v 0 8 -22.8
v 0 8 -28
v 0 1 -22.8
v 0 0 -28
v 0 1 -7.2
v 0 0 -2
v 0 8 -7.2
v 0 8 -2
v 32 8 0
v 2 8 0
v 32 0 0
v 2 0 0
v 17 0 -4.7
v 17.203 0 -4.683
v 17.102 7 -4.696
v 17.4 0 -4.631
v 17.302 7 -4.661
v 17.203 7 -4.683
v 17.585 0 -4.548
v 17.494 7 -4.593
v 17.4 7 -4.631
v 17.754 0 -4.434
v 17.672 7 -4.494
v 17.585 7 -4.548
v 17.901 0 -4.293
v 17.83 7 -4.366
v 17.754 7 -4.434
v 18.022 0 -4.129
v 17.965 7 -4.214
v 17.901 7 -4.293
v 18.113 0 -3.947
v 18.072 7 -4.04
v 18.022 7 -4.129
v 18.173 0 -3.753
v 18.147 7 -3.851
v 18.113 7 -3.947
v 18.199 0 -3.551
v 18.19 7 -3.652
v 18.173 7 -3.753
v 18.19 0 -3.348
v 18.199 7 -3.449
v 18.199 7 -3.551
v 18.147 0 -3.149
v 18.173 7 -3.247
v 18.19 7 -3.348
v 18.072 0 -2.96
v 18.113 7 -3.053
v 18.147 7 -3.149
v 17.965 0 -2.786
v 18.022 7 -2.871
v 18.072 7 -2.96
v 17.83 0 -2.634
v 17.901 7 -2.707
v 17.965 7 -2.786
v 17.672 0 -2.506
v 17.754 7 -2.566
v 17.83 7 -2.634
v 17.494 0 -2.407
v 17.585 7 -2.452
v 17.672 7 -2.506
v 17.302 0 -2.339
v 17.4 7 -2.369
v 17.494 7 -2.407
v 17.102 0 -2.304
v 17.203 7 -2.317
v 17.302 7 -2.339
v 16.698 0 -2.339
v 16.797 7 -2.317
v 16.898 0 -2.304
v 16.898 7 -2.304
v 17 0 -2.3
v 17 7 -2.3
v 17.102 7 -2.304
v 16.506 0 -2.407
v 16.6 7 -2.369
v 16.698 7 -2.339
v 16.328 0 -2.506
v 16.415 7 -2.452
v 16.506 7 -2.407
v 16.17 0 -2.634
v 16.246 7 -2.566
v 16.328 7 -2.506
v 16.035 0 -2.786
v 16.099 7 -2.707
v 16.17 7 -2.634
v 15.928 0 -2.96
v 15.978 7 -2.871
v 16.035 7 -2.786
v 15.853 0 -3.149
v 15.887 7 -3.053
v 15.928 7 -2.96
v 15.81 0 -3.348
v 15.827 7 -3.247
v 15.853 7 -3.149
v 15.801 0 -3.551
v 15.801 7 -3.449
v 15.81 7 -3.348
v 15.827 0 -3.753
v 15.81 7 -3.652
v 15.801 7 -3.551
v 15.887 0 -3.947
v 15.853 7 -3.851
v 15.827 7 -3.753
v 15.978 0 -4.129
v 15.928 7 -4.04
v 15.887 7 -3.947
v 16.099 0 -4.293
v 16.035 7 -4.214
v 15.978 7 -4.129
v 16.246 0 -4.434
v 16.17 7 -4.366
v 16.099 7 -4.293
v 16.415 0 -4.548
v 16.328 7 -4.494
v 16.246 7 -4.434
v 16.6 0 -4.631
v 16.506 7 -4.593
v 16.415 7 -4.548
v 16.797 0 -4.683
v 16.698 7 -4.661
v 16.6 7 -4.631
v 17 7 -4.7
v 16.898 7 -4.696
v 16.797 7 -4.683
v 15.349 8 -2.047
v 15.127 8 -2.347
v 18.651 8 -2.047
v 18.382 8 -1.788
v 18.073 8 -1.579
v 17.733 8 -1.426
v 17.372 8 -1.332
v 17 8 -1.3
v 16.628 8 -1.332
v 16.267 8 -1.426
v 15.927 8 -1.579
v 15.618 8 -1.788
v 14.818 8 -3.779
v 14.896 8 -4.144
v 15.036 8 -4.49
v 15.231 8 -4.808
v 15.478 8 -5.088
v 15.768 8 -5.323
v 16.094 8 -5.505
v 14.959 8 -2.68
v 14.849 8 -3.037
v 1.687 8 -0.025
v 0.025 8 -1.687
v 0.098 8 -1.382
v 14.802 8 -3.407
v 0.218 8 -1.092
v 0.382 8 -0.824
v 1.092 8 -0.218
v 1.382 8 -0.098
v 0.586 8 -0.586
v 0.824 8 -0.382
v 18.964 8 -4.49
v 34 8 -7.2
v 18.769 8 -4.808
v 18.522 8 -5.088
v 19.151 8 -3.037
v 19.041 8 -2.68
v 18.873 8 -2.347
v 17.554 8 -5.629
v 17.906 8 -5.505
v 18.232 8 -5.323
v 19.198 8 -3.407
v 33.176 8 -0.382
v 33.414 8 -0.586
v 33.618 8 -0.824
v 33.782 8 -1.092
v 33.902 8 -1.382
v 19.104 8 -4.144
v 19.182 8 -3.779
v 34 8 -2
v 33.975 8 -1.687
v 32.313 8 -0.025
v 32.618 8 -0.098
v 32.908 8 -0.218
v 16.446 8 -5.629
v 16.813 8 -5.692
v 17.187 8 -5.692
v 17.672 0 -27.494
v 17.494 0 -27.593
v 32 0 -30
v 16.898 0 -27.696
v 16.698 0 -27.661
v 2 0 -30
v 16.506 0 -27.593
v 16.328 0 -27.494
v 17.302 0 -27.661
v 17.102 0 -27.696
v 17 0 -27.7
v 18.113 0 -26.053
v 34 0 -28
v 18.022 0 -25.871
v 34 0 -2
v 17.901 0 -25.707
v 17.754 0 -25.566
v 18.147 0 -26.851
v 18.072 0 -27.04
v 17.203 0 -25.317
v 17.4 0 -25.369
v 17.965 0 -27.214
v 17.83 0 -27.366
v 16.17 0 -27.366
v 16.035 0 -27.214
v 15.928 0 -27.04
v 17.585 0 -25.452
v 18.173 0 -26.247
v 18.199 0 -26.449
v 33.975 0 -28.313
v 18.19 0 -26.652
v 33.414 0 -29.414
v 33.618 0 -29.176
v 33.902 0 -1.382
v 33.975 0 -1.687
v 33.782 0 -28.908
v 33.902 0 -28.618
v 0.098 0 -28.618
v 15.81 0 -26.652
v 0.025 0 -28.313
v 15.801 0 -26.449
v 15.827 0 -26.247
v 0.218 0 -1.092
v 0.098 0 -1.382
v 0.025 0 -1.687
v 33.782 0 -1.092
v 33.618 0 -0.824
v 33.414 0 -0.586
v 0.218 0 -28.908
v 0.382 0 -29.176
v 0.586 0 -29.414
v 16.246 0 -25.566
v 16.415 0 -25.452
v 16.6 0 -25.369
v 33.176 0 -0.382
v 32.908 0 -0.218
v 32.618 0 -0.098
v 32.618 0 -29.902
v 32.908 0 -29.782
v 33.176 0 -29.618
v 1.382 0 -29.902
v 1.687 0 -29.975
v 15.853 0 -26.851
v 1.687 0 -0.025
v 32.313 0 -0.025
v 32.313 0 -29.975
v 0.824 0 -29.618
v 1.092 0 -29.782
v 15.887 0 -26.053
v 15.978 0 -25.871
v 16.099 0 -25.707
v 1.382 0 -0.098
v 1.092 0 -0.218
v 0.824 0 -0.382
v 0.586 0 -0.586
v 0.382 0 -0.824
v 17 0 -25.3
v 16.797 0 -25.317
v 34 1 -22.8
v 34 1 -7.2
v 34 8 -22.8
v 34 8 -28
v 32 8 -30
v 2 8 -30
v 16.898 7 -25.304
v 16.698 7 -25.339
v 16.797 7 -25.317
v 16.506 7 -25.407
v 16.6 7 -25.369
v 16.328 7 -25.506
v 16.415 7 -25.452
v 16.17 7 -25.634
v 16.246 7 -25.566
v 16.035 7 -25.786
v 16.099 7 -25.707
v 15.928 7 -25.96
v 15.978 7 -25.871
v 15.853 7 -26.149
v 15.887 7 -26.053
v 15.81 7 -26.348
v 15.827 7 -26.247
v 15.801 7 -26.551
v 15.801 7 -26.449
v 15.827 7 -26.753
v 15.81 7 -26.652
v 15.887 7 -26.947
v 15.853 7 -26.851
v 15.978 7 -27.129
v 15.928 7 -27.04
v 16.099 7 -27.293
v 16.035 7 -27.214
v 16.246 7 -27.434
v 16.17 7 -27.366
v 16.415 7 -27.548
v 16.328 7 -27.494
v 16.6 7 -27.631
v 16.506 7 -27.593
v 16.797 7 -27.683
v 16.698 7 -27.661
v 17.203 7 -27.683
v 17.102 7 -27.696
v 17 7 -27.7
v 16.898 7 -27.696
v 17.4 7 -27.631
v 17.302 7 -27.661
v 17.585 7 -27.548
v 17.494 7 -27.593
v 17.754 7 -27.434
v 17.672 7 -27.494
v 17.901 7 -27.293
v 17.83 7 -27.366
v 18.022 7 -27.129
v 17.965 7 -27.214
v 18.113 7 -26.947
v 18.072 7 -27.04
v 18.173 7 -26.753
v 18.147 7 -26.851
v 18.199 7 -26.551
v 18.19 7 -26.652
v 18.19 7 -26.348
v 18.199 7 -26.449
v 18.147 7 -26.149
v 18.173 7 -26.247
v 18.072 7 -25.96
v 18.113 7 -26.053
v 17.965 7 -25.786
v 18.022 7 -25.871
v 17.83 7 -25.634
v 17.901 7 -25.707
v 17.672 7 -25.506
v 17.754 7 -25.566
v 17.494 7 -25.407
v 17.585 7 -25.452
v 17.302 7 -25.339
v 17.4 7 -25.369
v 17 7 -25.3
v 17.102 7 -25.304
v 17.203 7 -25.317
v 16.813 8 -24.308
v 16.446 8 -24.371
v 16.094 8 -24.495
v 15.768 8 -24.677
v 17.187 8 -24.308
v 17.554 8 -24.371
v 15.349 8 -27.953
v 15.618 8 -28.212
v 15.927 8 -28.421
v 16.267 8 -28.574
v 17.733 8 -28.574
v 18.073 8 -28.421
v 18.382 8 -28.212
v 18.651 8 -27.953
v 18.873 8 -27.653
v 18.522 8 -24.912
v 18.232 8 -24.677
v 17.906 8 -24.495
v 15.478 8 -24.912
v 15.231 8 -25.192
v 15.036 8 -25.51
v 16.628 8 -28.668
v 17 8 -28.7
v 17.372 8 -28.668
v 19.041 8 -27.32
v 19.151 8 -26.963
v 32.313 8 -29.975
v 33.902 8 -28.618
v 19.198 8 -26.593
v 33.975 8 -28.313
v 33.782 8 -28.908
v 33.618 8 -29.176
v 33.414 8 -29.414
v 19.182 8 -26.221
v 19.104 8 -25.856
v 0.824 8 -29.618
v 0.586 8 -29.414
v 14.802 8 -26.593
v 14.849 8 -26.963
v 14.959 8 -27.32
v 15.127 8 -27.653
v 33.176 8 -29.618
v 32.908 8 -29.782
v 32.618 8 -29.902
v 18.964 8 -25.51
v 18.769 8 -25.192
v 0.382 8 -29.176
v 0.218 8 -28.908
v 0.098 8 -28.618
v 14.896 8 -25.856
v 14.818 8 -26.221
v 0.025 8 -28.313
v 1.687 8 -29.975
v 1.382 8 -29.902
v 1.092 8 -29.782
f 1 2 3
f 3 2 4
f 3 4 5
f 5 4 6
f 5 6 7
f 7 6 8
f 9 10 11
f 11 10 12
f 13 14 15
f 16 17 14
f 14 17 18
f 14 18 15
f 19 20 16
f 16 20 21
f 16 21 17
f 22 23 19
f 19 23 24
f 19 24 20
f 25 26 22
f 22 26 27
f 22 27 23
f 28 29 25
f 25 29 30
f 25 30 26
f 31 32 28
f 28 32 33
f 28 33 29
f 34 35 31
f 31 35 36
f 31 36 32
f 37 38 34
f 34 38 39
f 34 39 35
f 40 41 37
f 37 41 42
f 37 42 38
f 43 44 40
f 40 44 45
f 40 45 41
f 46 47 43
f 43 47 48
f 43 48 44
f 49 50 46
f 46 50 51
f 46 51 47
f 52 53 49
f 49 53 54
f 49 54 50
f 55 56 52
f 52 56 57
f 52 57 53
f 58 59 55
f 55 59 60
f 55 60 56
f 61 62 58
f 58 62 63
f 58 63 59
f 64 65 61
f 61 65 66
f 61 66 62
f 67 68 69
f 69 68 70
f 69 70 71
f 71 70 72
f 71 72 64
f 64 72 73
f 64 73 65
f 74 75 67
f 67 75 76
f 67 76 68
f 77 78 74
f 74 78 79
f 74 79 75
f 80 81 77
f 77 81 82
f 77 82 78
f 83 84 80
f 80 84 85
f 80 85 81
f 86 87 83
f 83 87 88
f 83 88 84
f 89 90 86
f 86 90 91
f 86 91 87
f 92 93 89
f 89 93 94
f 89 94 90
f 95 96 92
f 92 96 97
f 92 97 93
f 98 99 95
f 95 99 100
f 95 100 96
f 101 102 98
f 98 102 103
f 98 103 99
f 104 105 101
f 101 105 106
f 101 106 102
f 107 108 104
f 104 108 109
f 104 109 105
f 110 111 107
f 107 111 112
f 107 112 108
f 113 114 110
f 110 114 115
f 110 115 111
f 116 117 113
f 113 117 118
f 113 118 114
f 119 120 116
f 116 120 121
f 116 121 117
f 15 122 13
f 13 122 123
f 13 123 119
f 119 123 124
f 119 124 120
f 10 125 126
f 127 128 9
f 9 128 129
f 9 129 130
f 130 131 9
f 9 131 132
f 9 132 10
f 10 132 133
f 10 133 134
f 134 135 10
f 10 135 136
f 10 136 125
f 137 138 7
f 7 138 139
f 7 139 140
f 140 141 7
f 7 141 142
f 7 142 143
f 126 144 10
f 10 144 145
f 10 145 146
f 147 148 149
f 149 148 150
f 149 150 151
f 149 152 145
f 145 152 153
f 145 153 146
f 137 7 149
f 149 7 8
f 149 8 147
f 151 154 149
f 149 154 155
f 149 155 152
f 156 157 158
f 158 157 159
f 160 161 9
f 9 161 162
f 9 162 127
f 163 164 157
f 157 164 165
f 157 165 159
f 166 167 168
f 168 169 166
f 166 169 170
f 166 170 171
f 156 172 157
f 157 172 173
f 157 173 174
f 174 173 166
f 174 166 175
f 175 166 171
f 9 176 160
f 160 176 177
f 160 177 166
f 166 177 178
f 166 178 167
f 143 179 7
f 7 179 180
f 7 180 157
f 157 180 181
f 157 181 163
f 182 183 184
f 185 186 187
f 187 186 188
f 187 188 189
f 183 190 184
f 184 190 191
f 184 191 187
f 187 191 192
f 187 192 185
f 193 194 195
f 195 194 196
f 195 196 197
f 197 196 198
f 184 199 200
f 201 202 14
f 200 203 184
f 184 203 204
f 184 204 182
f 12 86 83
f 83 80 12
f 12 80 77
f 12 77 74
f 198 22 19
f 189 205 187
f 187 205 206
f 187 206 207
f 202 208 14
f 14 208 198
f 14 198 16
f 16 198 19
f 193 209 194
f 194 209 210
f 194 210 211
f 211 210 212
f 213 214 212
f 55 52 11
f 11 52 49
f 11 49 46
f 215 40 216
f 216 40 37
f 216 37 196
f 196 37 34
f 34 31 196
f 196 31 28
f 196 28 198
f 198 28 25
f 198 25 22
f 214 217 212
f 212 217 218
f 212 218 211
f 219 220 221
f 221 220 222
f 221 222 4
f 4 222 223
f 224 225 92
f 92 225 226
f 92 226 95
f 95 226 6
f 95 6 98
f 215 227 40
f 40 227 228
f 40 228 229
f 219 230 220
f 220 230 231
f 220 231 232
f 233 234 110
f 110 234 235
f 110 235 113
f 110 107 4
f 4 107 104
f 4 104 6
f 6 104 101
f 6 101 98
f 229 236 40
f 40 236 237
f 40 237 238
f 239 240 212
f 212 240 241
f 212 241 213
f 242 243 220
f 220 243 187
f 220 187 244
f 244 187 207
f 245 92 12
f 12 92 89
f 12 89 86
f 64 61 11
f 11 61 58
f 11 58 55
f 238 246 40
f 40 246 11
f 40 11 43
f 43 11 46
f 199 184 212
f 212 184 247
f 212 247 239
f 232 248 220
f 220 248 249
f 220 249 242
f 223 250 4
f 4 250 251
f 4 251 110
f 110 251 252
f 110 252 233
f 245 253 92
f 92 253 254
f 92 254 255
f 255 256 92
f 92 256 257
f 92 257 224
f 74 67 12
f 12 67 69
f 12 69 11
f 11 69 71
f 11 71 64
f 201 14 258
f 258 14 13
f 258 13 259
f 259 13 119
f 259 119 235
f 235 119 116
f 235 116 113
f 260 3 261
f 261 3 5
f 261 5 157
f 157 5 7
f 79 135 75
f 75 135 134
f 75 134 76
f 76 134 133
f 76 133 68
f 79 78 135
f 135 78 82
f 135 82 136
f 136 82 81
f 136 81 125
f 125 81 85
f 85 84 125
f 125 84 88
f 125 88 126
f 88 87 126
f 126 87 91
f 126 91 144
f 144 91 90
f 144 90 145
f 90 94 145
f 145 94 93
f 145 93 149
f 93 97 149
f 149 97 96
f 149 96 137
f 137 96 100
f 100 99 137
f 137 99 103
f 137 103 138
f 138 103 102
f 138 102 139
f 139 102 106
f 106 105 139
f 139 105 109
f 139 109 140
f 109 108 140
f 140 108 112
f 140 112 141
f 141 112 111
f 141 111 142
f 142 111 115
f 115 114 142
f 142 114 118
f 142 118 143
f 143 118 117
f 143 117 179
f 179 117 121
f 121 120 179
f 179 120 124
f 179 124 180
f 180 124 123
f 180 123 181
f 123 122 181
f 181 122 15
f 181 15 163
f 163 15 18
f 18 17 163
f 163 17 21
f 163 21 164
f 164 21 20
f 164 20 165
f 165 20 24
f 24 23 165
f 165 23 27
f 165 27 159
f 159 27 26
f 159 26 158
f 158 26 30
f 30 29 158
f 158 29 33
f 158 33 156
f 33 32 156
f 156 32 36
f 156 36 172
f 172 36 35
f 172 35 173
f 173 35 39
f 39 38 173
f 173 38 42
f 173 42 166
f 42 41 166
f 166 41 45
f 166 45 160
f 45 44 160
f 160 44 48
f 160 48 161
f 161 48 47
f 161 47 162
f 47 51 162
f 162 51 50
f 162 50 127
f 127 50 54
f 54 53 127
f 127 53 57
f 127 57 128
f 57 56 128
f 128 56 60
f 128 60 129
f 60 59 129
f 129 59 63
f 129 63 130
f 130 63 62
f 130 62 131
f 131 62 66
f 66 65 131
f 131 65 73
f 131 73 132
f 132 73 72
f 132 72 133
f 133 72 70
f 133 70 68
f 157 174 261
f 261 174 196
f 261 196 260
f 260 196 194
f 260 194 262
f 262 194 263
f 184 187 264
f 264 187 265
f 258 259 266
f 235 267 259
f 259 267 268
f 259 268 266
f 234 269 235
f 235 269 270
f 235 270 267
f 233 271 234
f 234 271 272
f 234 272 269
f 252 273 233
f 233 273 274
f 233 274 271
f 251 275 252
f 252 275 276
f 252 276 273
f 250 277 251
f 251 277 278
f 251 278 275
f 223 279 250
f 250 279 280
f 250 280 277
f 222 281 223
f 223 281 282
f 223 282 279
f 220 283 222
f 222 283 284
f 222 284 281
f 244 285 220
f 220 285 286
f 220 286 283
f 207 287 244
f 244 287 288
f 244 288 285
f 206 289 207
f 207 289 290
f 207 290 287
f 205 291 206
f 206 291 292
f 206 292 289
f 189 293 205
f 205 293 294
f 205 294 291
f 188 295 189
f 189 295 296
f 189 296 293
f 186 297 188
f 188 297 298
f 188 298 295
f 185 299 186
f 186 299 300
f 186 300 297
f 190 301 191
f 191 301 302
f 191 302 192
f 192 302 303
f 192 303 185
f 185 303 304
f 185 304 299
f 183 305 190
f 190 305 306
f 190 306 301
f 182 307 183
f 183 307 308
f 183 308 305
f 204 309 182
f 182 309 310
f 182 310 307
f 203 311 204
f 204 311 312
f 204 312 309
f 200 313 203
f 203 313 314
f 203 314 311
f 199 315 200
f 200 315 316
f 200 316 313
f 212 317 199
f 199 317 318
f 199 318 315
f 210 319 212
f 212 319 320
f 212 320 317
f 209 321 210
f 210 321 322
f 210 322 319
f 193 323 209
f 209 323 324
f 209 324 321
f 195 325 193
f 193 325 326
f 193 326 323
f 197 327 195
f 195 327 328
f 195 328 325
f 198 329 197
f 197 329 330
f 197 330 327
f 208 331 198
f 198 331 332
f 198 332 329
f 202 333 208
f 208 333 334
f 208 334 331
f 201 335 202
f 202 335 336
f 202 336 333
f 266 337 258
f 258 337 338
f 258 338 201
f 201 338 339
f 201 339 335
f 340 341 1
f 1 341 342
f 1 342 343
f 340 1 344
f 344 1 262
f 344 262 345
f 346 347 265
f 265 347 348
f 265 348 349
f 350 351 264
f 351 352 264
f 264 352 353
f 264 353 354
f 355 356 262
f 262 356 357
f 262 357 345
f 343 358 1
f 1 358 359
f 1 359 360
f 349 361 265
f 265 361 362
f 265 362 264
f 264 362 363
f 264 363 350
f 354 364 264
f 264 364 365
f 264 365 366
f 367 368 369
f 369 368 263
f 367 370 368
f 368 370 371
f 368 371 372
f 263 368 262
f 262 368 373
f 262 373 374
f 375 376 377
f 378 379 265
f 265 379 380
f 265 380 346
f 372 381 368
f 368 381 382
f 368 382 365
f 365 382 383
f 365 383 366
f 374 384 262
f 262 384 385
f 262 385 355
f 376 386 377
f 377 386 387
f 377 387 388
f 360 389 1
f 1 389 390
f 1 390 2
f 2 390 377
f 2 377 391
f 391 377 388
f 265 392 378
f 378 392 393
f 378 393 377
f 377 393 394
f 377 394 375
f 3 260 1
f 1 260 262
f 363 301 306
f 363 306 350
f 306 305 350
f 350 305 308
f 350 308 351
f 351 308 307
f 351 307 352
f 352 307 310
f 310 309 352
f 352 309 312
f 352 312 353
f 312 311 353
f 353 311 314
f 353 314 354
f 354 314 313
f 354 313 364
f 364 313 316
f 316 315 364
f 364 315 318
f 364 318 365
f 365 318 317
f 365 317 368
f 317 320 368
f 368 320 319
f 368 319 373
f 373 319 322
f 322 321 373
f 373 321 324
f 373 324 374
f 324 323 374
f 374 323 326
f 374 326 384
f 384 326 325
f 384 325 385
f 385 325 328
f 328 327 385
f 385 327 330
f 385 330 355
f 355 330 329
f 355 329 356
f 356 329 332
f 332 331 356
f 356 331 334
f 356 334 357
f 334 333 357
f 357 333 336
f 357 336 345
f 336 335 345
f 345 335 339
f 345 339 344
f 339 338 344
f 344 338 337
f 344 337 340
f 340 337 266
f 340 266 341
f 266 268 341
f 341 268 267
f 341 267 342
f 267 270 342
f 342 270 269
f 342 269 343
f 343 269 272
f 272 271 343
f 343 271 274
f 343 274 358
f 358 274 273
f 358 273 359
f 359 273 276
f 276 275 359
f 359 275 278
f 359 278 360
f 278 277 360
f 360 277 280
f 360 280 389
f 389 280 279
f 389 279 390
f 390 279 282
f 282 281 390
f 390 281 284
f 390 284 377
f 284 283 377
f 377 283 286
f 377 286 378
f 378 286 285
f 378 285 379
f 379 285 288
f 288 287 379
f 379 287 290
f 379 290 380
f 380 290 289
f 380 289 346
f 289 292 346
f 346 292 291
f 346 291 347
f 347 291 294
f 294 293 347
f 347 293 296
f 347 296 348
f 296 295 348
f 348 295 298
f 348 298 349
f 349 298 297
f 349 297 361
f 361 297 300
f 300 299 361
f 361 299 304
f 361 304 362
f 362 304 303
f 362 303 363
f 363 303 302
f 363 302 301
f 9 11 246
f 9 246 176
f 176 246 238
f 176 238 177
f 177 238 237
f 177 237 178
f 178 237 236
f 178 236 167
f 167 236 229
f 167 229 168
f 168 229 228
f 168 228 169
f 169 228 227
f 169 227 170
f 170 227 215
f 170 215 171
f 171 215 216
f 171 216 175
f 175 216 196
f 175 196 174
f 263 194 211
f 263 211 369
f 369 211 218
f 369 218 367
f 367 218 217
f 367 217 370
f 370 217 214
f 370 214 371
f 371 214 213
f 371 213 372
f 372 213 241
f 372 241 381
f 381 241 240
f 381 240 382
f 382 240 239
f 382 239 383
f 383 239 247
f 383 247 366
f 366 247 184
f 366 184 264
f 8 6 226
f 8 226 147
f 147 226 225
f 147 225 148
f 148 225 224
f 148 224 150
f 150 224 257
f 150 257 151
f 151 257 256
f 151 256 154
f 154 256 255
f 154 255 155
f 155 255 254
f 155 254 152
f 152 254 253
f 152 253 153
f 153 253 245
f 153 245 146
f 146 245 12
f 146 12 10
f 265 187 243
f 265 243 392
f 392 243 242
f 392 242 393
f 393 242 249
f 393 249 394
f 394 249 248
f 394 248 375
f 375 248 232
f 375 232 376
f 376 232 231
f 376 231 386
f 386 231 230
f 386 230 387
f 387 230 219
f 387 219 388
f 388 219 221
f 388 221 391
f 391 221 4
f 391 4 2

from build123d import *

# Parameters (mm, degrees)
BOSS_EXTRUDE1_DEPTH = 8
SKETCH2_W           = 7.8
SKETCH2_H           = 7
CUT_EXTRUDE1_DEPTH  = 25.04163056
CHAMFER1_SIZE       = 1
FILLET1_R           = 2


with BuildPart() as part:
    # Sketch1 → Boss-Extrude1 (new body)
    with BuildSketch(Plane(origin=(0, 0, 0), x_dir=(1, 0, 0), z_dir=(0, 1, 0))):
        with BuildLine():
            Line((17, 4.7), (17, 15))
            Line((17, 15), (0, 15))
            Line((0, 15), (0, 0))
            Line((0, 0), (17, 0))
            Line((17, 0), (17, 2.3))
            ThreePointArc((17, 2.3), (15.8, 3.5), (17, 4.7))
        make_face()
    extrude(amount=BOSS_EXTRUDE1_DEPTH)

    # Sketch2 → Cut-Extrude1 (cut, through all)
    with BuildSketch(Plane(origin=(17, 0, 0), x_dir=(0, 0, -1), z_dir=(1, 0, 0))):
        with Locations((11.1, 4.5)):
            Rectangle(SKETCH2_W, SKETCH2_H)
    extrude(amount=-CUT_EXTRUDE1_DEPTH, mode=Mode.SUBTRACT)

    # Chamfer1
    chamfer1_edges = [part.edges().sort_by_distance(p)[0] for p in [
        (15.8, 8, -3.5),
    ]]
    chamfer(chamfer1_edges, length=CHAMFER1_SIZE)

    # Mirror1: part across plane


with BuildPart() as part_1:
    add(part.part)
    add(part.part.mirror(Plane(origin=(17, 8, -4.7), x_dir=(0, 0, 1), z_dir=(-1, 0, 0))))

    # Mirror2: part across plane


with BuildPart() as part_2:
    add(part_1.part)
    add(part_1.part.mirror(Plane(origin=(0, 8, -15), x_dir=(1, 0, 0), z_dir=(0, 0, 1))))

    # Fillet1
    fillet1_edges = [part_2.edges().sort_by_distance(p)[0] for p in [
        (0, 4, 0),
        (34, 4, 0),
        (0, 4, -30),
        (34, 4, -30),
    ]]
    fillet(fillet1_edges, radius=FILLET1_R)


solid = part_2.part
